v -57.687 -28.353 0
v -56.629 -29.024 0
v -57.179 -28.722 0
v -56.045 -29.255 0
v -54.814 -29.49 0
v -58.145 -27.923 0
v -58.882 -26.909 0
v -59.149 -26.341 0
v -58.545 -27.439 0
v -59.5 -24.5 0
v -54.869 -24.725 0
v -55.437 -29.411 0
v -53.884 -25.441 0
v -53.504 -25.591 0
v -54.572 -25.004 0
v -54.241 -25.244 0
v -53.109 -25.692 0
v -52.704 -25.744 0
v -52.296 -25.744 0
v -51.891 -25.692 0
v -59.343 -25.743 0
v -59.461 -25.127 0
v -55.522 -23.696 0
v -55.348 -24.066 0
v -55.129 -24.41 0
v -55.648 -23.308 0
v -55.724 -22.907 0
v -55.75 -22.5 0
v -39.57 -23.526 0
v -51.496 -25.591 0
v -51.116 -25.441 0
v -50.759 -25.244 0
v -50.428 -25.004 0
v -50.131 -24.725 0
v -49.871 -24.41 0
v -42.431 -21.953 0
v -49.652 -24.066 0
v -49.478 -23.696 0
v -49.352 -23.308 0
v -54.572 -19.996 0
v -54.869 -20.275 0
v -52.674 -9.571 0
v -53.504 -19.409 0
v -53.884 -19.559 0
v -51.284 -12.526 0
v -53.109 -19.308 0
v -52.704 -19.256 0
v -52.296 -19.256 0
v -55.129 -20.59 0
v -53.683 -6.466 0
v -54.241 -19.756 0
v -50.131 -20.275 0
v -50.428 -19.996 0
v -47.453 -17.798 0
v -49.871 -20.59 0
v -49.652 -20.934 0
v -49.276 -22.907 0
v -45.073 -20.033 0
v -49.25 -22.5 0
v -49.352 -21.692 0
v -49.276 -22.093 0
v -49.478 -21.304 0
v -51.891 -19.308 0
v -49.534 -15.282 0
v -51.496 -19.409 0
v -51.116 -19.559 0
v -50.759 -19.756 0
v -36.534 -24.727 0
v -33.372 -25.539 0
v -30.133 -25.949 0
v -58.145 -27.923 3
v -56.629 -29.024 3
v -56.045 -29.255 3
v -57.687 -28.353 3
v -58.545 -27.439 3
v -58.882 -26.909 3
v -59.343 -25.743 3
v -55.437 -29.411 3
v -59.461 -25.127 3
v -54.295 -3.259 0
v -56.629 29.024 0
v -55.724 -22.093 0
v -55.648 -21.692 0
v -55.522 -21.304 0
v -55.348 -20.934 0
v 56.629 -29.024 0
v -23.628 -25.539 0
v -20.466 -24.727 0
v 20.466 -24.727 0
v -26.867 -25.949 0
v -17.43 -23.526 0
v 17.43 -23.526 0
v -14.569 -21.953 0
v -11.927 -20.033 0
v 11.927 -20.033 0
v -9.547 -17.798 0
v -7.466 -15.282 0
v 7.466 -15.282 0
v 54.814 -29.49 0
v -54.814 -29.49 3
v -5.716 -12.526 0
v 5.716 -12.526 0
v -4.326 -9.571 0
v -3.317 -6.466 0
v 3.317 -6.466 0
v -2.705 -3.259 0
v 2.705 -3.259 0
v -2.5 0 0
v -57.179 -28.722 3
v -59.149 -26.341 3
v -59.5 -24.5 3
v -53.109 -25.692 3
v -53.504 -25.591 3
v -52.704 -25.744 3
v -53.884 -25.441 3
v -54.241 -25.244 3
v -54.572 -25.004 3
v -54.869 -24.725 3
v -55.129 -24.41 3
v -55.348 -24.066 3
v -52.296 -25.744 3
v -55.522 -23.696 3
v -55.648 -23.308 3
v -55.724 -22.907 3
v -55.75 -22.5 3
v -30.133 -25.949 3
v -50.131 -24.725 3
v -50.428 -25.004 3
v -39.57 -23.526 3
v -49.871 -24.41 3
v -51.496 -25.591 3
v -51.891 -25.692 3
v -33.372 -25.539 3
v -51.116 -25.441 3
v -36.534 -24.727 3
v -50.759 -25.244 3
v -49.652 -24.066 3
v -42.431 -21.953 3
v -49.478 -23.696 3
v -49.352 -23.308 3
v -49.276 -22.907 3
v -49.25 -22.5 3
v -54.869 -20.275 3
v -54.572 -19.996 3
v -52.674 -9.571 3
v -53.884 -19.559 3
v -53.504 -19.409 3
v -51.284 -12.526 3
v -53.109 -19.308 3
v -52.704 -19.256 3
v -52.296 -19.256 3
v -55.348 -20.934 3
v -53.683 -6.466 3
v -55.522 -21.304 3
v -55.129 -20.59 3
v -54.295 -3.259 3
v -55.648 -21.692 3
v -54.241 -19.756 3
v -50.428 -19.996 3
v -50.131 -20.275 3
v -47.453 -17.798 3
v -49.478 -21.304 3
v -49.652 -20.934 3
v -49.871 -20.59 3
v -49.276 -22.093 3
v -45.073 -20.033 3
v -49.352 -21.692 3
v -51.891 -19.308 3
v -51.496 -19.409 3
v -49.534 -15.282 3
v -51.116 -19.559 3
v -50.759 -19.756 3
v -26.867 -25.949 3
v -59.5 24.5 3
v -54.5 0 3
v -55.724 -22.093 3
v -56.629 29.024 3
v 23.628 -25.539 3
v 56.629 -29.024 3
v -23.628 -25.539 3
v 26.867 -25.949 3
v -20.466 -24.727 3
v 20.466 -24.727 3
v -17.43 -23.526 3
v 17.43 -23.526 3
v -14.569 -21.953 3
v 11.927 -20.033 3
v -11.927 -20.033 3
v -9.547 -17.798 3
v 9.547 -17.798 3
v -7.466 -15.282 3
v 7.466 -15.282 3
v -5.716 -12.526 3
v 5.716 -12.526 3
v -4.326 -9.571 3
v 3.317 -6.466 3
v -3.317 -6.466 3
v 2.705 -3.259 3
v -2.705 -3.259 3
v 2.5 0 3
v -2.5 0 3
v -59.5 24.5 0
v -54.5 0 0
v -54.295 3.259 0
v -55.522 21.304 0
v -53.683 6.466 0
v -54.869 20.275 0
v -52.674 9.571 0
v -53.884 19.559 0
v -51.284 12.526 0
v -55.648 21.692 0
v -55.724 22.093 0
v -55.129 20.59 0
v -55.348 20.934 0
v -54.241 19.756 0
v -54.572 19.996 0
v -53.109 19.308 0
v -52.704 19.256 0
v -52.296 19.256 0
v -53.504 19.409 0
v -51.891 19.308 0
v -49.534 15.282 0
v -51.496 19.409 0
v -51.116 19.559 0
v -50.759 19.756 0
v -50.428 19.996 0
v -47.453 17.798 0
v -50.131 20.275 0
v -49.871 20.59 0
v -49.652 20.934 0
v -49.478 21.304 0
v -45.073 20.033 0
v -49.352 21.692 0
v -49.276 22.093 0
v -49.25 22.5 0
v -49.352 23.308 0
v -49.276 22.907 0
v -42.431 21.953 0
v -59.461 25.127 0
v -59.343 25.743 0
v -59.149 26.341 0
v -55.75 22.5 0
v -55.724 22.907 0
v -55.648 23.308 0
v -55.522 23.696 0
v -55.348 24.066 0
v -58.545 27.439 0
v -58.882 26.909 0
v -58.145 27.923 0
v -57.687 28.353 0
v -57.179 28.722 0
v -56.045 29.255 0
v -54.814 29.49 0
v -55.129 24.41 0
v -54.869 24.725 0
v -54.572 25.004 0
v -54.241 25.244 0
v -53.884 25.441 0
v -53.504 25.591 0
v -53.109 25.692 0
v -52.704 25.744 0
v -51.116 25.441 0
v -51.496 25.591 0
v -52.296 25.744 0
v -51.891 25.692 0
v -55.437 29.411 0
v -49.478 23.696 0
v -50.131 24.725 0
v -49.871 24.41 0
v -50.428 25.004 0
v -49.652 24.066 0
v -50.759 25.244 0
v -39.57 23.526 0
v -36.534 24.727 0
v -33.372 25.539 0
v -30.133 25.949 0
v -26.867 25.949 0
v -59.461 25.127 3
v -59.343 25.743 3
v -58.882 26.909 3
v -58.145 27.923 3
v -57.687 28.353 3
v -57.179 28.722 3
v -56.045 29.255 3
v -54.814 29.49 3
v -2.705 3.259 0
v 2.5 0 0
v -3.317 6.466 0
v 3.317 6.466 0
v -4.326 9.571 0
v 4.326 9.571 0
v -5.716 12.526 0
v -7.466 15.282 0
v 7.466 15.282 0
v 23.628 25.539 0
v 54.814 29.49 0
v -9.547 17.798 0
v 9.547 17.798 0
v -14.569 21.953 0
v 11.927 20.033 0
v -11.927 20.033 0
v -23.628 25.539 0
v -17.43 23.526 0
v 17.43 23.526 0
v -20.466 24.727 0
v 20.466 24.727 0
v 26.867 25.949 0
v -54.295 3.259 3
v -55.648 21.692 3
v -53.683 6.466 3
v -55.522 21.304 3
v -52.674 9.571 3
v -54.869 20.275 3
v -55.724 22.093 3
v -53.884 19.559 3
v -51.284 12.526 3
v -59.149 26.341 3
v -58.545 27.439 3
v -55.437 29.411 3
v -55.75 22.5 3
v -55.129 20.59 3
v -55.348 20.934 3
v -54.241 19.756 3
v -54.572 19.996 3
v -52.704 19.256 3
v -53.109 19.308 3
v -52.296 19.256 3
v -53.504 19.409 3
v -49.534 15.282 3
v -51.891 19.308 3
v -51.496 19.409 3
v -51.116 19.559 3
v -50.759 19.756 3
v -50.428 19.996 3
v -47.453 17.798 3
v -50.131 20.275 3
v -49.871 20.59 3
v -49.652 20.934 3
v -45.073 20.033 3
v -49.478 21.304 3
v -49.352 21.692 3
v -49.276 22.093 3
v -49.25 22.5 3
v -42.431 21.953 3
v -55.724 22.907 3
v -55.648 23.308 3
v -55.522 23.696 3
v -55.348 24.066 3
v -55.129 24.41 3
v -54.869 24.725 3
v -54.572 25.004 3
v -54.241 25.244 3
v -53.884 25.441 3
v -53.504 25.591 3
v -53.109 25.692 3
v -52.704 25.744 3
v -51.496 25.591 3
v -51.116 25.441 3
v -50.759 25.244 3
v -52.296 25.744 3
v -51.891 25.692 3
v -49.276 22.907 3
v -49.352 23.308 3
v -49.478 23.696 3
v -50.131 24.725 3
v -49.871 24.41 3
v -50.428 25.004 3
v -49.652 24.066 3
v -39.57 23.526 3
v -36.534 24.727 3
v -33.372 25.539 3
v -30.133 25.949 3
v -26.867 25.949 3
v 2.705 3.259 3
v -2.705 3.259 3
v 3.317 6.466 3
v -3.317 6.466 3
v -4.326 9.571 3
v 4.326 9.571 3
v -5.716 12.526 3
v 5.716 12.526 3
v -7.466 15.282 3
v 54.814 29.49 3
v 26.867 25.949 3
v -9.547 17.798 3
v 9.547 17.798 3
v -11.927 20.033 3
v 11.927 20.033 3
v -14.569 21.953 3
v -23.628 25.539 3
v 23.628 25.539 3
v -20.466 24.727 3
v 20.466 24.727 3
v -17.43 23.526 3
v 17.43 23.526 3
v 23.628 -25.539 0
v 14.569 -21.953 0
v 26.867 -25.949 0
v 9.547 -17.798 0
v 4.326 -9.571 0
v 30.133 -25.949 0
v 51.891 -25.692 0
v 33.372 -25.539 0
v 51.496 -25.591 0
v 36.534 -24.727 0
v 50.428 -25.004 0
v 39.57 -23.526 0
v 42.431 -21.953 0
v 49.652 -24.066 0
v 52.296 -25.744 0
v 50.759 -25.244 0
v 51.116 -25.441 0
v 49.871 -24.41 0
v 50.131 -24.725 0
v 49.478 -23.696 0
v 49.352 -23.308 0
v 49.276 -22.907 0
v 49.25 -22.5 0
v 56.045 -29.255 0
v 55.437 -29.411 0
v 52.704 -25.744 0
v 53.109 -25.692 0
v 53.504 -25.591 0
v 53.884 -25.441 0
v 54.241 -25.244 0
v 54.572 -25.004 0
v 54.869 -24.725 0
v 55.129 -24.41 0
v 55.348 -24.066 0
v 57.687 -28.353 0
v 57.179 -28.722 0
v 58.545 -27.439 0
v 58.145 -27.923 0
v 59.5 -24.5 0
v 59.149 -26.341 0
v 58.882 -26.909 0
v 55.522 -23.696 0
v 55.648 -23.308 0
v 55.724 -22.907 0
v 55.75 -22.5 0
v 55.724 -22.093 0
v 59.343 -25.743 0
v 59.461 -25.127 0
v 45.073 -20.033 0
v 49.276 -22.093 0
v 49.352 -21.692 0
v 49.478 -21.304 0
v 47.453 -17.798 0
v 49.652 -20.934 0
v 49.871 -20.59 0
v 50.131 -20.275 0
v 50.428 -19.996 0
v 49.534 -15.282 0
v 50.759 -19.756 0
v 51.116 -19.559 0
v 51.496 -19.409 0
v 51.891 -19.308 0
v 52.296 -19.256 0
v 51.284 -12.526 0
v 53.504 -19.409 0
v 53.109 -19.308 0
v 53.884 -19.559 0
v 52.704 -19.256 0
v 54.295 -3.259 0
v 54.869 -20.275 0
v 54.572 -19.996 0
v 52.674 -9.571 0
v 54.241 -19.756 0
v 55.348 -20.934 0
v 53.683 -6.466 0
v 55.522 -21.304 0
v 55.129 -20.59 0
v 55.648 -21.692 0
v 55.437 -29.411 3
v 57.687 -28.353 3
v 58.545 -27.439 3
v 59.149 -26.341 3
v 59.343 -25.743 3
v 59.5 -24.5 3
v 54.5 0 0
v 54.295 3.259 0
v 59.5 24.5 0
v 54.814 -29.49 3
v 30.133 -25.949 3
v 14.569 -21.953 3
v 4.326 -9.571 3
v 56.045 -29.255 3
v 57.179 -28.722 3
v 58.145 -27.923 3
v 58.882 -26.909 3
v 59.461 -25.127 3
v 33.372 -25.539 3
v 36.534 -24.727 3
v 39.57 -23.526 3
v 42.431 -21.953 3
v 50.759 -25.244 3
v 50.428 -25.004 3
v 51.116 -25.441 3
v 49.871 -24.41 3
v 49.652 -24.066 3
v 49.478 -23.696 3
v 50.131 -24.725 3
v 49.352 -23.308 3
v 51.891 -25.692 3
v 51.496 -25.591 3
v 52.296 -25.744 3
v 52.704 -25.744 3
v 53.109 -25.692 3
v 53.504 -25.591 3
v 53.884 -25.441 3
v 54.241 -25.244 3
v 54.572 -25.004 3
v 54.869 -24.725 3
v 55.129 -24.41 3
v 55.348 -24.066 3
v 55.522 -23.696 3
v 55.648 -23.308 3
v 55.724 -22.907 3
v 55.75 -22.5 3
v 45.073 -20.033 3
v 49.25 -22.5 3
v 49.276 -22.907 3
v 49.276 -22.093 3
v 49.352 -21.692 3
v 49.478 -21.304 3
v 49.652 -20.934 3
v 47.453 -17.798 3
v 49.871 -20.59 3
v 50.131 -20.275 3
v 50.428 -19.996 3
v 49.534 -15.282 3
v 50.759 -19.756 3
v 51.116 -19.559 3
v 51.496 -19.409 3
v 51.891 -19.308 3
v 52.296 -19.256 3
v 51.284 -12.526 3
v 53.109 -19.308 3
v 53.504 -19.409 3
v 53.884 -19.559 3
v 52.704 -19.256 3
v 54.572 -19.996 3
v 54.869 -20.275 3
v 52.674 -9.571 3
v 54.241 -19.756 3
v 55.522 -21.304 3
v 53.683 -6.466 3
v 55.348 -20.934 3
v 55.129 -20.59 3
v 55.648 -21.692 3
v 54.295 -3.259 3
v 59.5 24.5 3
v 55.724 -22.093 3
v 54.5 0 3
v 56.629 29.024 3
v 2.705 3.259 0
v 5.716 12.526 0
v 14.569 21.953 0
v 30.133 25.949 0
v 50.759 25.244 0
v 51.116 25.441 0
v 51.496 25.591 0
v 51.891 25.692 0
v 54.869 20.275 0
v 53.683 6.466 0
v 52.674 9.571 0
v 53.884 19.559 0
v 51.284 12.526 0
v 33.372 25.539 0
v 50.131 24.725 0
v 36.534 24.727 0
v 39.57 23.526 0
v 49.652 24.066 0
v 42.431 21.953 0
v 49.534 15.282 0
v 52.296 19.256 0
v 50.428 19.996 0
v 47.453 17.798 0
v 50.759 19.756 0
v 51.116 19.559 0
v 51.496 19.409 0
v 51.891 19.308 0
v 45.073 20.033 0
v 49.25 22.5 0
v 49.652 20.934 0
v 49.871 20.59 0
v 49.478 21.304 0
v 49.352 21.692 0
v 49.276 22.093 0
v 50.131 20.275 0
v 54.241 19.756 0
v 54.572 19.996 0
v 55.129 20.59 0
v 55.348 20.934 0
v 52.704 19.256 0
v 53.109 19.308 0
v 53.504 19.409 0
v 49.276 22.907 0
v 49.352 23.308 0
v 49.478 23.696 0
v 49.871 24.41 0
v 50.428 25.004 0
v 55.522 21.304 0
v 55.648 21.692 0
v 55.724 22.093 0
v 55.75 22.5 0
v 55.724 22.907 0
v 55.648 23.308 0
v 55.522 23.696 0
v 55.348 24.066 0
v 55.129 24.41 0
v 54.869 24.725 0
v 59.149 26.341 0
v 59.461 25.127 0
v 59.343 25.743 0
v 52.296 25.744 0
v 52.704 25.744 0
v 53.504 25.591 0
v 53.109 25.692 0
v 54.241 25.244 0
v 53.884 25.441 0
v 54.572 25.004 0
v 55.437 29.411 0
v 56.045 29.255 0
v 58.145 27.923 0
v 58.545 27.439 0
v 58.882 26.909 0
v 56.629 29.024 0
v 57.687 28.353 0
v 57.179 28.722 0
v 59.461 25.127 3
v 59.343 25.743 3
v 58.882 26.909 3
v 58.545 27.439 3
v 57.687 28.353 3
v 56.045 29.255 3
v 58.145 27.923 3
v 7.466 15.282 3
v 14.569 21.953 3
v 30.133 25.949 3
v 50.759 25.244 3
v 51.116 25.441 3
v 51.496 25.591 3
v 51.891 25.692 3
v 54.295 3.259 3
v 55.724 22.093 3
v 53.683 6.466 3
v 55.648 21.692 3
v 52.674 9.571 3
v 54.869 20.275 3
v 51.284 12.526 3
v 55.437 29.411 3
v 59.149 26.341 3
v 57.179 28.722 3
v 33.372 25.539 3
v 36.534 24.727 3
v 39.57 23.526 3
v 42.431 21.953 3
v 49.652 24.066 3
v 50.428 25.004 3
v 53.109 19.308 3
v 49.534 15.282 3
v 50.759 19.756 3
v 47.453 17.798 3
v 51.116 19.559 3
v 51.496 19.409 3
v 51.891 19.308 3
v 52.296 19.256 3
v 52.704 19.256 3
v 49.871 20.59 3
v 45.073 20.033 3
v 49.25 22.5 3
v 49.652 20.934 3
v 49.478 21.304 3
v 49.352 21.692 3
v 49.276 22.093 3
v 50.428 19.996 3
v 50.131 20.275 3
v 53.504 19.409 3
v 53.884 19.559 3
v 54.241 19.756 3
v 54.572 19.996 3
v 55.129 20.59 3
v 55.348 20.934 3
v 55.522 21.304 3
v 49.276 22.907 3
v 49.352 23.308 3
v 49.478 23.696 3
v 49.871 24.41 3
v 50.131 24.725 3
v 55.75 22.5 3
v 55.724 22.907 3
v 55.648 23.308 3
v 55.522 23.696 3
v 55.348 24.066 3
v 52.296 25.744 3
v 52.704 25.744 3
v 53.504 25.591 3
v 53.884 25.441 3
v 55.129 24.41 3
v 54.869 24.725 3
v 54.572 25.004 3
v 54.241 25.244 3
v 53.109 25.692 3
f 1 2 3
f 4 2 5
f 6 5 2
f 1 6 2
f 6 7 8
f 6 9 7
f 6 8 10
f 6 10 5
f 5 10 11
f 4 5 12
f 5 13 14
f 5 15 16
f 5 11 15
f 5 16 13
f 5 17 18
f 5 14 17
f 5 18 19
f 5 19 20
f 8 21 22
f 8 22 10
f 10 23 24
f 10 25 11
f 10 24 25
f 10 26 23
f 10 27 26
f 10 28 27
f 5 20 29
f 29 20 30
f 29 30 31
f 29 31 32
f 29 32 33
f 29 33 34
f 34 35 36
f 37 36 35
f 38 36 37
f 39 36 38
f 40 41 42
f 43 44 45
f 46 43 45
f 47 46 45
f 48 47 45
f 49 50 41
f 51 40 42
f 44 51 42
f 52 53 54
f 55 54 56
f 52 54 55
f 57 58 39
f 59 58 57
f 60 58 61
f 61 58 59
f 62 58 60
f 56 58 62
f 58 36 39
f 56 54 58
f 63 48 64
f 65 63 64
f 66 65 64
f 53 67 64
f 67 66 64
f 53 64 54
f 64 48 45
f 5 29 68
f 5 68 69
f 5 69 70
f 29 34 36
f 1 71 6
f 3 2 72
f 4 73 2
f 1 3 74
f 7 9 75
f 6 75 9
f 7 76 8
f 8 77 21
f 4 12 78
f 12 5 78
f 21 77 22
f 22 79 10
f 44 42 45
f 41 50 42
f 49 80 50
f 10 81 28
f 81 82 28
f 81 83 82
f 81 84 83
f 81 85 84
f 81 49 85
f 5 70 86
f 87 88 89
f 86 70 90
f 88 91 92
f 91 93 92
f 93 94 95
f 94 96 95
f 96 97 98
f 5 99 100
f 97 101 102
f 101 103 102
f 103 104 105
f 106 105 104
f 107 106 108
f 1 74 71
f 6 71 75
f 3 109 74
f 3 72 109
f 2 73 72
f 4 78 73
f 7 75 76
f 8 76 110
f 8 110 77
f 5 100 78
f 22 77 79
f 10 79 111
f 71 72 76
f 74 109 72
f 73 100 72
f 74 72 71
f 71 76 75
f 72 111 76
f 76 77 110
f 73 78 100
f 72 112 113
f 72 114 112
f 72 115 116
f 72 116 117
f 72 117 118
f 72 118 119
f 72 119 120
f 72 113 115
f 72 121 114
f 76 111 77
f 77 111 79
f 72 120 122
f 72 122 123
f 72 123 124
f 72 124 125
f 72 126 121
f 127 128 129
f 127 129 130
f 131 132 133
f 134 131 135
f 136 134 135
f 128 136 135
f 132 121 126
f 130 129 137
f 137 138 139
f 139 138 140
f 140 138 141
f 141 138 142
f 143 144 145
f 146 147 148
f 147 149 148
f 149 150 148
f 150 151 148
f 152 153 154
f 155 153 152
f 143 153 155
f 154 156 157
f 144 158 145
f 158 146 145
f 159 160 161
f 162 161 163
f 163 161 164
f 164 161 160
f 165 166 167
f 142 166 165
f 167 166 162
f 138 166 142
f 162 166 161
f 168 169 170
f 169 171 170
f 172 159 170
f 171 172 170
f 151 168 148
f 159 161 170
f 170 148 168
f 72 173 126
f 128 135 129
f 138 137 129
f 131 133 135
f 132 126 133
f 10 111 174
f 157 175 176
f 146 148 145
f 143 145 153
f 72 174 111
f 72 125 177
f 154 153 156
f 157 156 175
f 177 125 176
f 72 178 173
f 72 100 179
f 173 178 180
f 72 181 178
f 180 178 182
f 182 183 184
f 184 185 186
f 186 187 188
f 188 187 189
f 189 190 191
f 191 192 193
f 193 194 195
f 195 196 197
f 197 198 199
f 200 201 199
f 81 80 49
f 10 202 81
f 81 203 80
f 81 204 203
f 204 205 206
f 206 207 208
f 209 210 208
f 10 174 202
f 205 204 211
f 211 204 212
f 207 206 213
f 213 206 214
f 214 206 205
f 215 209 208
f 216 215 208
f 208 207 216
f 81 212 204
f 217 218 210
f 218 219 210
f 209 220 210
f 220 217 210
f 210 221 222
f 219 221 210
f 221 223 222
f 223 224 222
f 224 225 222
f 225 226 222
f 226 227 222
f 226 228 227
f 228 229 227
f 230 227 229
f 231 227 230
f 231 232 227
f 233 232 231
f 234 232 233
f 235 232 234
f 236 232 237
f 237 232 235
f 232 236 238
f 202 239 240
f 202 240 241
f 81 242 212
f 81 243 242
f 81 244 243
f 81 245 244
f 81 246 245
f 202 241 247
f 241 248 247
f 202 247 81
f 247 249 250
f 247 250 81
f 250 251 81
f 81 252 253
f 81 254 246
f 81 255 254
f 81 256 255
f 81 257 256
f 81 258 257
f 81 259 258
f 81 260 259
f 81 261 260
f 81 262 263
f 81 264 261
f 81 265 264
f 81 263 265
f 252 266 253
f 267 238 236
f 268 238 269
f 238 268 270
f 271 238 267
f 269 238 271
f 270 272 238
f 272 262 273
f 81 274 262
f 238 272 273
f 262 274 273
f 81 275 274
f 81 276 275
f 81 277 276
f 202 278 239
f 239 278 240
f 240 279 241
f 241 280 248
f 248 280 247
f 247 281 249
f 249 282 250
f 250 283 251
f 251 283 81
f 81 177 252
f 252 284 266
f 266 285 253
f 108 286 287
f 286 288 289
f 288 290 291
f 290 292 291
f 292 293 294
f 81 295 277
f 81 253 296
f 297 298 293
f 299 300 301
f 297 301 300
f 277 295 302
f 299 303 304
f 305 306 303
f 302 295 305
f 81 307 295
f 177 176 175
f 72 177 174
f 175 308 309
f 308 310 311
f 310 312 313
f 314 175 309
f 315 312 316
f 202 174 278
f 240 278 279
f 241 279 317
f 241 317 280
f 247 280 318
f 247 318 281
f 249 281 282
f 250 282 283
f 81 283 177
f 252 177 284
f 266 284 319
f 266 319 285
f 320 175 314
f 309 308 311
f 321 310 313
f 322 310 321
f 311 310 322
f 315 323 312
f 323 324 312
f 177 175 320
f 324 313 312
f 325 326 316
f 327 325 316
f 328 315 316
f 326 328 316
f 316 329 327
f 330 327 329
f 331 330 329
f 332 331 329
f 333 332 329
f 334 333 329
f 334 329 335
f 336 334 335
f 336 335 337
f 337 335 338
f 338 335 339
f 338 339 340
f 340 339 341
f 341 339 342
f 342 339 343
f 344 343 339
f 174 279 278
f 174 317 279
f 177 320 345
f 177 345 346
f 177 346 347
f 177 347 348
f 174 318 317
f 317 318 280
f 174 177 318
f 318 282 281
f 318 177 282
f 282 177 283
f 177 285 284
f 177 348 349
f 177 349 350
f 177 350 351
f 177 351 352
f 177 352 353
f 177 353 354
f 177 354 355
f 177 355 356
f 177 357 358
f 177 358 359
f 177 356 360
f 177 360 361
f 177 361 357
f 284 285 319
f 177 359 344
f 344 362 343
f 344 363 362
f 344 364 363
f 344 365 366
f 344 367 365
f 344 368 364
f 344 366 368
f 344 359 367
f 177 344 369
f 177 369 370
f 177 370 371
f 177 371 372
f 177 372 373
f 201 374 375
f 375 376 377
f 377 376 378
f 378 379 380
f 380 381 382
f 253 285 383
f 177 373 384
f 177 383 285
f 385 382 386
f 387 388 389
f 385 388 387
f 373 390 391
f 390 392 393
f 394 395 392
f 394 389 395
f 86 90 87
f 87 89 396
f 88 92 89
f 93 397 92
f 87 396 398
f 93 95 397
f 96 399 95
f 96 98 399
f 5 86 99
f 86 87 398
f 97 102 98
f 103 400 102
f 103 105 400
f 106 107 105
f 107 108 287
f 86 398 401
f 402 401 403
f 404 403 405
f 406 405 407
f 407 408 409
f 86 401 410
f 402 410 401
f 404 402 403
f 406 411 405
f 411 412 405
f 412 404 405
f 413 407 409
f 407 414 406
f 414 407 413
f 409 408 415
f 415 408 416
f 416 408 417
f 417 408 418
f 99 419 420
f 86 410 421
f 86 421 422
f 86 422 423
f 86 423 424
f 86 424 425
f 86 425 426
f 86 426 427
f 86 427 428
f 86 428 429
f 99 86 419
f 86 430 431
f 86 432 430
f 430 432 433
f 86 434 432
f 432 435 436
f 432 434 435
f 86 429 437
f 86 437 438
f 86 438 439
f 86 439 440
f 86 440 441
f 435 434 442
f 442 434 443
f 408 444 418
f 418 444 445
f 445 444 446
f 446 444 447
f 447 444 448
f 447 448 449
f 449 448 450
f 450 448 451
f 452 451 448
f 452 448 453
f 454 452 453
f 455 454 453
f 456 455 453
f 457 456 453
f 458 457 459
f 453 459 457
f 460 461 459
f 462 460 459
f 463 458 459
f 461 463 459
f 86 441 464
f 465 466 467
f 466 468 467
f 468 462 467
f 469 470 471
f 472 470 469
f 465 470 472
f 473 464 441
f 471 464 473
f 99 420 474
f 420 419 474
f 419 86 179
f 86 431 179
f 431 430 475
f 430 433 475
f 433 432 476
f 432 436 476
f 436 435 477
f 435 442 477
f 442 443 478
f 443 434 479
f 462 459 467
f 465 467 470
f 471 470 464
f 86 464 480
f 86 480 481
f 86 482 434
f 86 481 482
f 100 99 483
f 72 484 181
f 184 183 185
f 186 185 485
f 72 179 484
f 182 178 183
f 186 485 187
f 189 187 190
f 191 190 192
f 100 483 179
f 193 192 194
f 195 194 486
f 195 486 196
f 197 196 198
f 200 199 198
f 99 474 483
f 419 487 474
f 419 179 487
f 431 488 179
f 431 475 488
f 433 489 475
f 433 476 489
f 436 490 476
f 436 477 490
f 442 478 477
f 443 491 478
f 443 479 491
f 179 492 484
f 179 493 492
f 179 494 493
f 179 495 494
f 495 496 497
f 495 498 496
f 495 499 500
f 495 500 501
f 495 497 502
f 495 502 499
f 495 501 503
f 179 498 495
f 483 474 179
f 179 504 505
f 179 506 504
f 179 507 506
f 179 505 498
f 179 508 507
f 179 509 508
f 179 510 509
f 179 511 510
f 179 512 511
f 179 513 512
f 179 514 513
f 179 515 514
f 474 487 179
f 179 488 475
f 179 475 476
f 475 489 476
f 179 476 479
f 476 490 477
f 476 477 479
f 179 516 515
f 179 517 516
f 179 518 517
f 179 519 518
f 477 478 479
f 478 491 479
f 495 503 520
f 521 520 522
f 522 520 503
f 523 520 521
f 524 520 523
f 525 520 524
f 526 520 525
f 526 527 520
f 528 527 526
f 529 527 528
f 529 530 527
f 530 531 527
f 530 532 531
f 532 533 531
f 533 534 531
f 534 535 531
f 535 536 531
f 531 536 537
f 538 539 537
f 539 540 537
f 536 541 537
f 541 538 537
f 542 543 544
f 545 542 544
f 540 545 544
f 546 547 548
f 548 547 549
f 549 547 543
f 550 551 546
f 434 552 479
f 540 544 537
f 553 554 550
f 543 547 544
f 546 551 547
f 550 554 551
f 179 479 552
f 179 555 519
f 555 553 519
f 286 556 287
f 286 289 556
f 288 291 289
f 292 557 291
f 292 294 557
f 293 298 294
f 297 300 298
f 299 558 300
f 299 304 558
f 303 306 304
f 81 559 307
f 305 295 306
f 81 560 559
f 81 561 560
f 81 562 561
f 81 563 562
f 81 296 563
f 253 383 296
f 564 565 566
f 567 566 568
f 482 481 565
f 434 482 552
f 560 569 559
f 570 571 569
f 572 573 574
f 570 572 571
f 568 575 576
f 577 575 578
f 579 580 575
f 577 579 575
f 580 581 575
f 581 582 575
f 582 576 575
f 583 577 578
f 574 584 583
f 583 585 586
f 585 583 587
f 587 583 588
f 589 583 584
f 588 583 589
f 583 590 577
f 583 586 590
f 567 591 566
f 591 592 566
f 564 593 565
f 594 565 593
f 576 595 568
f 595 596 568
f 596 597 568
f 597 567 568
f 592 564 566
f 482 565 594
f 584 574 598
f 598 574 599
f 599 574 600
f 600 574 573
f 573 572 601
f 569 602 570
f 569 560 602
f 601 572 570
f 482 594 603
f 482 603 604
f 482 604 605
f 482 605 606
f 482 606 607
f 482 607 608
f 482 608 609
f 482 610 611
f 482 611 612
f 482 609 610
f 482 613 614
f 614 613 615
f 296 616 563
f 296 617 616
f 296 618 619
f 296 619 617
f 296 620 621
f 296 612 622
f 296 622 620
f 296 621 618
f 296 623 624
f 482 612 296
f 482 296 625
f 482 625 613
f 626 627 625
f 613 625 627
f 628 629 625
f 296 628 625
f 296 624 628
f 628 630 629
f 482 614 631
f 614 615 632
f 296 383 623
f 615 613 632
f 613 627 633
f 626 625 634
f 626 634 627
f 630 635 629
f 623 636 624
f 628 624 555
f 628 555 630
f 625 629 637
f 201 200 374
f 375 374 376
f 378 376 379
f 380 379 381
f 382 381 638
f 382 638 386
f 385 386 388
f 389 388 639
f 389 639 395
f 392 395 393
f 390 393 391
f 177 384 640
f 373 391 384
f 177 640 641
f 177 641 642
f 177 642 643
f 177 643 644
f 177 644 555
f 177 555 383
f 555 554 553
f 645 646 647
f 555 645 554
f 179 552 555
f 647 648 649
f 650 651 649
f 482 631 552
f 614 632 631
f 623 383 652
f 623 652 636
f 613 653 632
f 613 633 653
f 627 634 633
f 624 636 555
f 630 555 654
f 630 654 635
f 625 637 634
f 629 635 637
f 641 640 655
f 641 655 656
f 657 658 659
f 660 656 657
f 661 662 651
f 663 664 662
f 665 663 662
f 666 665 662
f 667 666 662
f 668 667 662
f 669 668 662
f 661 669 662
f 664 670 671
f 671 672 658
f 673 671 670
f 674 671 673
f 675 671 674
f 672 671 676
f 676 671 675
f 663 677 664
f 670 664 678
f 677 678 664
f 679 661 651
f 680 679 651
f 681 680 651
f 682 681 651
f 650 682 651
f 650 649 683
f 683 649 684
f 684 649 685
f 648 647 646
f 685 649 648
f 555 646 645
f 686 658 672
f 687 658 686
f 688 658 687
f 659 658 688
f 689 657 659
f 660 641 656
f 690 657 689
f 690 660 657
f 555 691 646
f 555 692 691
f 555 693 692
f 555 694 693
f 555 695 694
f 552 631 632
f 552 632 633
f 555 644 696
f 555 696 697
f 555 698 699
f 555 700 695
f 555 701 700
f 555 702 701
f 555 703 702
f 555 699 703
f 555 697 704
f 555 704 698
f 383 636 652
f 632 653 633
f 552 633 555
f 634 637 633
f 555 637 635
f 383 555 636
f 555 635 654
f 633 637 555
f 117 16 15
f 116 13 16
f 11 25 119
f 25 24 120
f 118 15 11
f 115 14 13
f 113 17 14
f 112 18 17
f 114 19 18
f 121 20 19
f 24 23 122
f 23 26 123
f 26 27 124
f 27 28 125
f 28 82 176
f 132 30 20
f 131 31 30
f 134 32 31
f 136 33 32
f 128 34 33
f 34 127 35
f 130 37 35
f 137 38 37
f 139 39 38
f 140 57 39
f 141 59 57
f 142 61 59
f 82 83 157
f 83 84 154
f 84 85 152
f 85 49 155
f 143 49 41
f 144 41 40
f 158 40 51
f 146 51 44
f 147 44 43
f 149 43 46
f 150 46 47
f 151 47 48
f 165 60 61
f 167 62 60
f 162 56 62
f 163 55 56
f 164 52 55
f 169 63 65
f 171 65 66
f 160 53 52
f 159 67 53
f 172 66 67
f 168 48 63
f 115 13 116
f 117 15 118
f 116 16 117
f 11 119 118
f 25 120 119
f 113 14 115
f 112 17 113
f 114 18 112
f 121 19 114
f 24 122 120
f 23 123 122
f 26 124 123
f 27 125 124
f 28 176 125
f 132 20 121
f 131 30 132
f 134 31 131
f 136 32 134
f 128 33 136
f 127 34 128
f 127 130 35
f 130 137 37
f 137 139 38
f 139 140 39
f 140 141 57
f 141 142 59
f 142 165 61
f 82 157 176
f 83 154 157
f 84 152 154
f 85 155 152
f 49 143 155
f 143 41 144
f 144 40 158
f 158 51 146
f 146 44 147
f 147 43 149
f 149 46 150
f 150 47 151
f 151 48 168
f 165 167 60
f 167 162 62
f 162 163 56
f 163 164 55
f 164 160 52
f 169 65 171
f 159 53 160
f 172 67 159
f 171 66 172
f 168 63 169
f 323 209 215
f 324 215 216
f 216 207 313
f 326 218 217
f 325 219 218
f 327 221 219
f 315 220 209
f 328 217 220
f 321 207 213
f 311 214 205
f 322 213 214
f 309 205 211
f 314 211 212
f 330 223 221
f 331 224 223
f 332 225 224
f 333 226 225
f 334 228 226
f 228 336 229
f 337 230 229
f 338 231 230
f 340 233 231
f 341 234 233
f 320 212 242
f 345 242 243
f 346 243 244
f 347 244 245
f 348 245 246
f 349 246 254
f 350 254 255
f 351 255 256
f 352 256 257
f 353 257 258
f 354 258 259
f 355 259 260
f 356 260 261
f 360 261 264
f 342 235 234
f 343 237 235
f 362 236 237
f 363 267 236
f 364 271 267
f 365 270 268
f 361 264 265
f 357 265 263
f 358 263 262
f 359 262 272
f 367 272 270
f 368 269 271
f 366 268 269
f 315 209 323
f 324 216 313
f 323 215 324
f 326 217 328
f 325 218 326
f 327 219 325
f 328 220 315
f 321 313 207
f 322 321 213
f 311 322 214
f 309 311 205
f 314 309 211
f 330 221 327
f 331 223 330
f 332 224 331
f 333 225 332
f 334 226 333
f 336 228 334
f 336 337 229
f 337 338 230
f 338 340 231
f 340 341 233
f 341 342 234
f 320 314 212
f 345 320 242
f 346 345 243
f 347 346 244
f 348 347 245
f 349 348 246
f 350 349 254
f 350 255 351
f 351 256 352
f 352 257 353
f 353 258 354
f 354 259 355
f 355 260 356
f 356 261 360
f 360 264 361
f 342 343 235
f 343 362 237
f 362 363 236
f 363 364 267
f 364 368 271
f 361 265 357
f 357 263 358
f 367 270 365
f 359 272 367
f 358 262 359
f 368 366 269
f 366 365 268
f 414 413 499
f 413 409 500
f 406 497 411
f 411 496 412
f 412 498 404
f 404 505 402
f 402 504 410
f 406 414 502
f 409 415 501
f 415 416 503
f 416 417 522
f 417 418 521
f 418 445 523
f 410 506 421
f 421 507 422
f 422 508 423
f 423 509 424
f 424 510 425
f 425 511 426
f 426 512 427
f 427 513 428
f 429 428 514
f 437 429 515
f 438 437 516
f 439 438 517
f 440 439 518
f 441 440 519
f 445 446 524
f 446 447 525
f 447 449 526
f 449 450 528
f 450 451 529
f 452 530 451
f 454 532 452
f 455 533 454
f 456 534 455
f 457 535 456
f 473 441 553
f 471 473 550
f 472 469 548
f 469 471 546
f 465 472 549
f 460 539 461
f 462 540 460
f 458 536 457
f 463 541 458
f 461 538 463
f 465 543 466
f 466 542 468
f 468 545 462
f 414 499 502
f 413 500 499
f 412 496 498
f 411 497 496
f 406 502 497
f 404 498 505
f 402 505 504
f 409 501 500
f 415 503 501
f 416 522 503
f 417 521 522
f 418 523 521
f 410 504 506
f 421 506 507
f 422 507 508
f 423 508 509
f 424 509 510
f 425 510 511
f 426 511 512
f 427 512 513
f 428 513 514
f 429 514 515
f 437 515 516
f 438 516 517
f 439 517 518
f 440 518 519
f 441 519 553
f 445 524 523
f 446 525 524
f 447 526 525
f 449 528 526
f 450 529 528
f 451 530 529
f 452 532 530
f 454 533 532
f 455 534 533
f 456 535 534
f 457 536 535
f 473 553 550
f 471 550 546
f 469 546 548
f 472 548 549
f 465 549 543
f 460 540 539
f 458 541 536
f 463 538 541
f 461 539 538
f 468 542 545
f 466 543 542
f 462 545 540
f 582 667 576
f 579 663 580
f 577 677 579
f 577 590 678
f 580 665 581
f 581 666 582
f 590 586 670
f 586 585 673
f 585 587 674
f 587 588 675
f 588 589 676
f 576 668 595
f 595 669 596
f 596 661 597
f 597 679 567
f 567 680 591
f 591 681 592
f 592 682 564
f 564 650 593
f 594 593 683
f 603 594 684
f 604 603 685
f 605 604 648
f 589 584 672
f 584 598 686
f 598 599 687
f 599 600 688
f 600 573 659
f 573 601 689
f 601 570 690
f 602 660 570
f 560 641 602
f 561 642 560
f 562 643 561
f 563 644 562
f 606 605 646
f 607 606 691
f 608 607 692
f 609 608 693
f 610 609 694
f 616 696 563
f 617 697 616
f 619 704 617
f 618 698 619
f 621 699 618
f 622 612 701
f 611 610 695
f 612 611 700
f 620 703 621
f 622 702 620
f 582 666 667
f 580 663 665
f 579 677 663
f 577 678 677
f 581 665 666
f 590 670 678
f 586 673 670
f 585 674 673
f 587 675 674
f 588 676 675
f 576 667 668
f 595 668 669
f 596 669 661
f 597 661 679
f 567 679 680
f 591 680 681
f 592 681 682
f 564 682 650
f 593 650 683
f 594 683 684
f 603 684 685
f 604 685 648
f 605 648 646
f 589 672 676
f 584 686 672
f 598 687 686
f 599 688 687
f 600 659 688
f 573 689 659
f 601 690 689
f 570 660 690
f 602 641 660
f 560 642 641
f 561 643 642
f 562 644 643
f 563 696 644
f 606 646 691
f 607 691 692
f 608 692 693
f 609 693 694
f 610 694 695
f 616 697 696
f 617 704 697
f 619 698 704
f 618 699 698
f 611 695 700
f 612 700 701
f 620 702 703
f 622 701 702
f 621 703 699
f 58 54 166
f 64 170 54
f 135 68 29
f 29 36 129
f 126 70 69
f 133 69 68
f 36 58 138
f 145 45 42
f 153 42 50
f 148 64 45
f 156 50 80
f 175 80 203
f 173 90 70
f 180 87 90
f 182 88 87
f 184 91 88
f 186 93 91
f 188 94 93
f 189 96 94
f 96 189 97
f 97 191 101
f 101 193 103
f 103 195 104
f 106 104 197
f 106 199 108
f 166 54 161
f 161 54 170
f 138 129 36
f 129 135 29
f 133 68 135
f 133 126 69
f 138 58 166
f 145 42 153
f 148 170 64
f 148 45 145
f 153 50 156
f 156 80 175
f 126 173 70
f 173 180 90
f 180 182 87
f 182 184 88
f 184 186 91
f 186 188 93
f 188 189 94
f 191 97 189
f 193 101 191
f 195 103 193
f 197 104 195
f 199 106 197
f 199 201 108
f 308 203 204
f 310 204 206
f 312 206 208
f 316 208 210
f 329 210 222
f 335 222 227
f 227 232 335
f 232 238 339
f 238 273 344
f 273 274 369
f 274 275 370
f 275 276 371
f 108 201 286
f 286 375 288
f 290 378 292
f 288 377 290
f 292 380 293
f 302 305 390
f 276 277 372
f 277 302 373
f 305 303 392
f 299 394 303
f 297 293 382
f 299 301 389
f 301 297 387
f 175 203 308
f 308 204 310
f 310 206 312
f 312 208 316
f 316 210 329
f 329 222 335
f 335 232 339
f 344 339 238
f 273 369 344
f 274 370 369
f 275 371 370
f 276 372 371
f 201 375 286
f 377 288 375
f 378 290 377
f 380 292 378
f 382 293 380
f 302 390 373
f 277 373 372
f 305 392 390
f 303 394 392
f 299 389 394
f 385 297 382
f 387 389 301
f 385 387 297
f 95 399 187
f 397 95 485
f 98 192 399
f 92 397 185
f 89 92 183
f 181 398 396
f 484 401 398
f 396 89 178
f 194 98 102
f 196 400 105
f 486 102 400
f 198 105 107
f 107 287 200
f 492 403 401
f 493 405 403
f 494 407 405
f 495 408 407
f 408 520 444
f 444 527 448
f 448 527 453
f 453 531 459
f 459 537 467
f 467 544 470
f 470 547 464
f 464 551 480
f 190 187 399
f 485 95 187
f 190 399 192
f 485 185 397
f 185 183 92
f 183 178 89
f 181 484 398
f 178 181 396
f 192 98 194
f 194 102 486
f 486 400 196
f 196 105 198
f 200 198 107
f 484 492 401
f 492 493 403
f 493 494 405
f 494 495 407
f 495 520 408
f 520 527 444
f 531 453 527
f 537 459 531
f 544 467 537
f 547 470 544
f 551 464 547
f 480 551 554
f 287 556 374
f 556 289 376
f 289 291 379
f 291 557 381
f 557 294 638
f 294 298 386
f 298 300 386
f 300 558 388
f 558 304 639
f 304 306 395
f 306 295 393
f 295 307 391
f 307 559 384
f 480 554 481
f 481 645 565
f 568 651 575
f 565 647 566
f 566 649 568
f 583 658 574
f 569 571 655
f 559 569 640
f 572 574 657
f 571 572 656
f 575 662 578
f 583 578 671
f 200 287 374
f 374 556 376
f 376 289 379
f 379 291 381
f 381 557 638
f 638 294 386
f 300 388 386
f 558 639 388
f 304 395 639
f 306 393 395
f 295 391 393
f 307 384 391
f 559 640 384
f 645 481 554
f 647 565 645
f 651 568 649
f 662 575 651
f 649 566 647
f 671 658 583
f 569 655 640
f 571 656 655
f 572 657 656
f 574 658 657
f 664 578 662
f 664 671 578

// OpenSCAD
$fn = 50;

difference() {
	union() {
		hull() {
			translate(v = [-54.5, 24.5, 0]) {
				cylinder(h = 3, r = 5);
			}
			translate(v = [54.5, 24.5, 0]) {
				cylinder(h = 3, r = 5);
			}
			translate(v = [-54.5, -24.5, 0]) {
				cylinder(h = 3, r = 5);
			}
			translate(v = [54.5, -24.5, 0]) {
				cylinder(h = 3, r = 5);
			}
		}
	}
	union() {
		translate(v = [-52.5, -22.5, -100.0]) {
			cylinder(h = 200, r = 3.25);
		}
		translate(v = [-52.5, 22.5, -100.0]) {
			cylinder(h = 200, r = 3.25);
		}
		translate(v = [52.5, -22.5, -100.0]) {
			cylinder(h = 200, r = 3.25);
		}
		translate(v = [52.5, 22.5, -100.0]) {
			cylinder(h = 200, r = 3.25);
		}
		translate(v = [-52.5, -22.5, -100.0]) {
			cylinder(h = 200, r = 1.8);
		}
		translate(v = [-52.5, 22.5, -100.0]) {
			cylinder(h = 200, r = 1.8);
		}
		translate(v = [52.5, -22.5, -100.0]) {
			cylinder(h = 200, r = 1.8);
		}
		translate(v = [52.5, 22.5, -100.0]) {
			cylinder(h = 200, r = 1.8);
		}
		translate(v = [-28.5, 0, 0.0]) {
			cylinder(h = 3, r = 26.0);
		}
		translate(v = [28.5, 0, 0.0]) {
			cylinder(h = 3, r = 26.0);
		}
	}
}
